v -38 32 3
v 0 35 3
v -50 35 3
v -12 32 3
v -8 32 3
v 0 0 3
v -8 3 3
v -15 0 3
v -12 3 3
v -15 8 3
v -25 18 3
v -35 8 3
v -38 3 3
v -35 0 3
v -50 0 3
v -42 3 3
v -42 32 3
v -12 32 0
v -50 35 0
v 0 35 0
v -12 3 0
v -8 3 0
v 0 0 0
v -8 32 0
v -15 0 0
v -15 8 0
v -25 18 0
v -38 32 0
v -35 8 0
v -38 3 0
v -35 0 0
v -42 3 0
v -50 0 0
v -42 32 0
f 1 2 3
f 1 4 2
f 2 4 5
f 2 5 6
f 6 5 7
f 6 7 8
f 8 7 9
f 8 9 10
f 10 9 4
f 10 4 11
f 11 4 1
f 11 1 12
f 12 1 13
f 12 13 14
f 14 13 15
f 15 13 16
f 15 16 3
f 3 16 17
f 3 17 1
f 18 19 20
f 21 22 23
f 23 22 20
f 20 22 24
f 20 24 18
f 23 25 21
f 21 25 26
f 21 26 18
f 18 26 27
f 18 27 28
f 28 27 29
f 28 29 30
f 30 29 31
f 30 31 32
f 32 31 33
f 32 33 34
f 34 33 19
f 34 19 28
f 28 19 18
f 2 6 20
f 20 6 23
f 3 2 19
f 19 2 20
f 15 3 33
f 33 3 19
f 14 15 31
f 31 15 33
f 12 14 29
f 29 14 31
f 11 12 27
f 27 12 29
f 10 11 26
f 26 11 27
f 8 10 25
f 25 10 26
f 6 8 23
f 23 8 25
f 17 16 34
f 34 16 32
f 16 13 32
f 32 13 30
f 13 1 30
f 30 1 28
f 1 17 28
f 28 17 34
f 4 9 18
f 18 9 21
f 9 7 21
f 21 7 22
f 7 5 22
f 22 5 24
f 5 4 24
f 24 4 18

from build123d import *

# Parameters (mm, degrees)
ESQUISSE1_W        = 4
ESQUISSE1_H        = 29
BOSS_EXTRU_2_DEPTH = 3


with BuildPart() as part:
    # Esquisse1 → Boss.-Extru.2 (new body)
    with BuildSketch(Plane.XY):
        Polygon((-35, 0), (-35, 8), (-25, 18), (-15, 8), (-15, 0), (0, 0), (0, 35), (-50, 35), (-50, 0), align=None)
        with Locations((-10, 17.5)):
            Rectangle(ESQUISSE1_W, ESQUISSE1_H, mode=Mode.SUBTRACT)
        with Locations((-40, 17.5)):
            Rectangle(ESQUISSE1_W, ESQUISSE1_H, mode=Mode.SUBTRACT)
    extrude(amount=BOSS_EXTRU_2_DEPTH)


solid = part.part
